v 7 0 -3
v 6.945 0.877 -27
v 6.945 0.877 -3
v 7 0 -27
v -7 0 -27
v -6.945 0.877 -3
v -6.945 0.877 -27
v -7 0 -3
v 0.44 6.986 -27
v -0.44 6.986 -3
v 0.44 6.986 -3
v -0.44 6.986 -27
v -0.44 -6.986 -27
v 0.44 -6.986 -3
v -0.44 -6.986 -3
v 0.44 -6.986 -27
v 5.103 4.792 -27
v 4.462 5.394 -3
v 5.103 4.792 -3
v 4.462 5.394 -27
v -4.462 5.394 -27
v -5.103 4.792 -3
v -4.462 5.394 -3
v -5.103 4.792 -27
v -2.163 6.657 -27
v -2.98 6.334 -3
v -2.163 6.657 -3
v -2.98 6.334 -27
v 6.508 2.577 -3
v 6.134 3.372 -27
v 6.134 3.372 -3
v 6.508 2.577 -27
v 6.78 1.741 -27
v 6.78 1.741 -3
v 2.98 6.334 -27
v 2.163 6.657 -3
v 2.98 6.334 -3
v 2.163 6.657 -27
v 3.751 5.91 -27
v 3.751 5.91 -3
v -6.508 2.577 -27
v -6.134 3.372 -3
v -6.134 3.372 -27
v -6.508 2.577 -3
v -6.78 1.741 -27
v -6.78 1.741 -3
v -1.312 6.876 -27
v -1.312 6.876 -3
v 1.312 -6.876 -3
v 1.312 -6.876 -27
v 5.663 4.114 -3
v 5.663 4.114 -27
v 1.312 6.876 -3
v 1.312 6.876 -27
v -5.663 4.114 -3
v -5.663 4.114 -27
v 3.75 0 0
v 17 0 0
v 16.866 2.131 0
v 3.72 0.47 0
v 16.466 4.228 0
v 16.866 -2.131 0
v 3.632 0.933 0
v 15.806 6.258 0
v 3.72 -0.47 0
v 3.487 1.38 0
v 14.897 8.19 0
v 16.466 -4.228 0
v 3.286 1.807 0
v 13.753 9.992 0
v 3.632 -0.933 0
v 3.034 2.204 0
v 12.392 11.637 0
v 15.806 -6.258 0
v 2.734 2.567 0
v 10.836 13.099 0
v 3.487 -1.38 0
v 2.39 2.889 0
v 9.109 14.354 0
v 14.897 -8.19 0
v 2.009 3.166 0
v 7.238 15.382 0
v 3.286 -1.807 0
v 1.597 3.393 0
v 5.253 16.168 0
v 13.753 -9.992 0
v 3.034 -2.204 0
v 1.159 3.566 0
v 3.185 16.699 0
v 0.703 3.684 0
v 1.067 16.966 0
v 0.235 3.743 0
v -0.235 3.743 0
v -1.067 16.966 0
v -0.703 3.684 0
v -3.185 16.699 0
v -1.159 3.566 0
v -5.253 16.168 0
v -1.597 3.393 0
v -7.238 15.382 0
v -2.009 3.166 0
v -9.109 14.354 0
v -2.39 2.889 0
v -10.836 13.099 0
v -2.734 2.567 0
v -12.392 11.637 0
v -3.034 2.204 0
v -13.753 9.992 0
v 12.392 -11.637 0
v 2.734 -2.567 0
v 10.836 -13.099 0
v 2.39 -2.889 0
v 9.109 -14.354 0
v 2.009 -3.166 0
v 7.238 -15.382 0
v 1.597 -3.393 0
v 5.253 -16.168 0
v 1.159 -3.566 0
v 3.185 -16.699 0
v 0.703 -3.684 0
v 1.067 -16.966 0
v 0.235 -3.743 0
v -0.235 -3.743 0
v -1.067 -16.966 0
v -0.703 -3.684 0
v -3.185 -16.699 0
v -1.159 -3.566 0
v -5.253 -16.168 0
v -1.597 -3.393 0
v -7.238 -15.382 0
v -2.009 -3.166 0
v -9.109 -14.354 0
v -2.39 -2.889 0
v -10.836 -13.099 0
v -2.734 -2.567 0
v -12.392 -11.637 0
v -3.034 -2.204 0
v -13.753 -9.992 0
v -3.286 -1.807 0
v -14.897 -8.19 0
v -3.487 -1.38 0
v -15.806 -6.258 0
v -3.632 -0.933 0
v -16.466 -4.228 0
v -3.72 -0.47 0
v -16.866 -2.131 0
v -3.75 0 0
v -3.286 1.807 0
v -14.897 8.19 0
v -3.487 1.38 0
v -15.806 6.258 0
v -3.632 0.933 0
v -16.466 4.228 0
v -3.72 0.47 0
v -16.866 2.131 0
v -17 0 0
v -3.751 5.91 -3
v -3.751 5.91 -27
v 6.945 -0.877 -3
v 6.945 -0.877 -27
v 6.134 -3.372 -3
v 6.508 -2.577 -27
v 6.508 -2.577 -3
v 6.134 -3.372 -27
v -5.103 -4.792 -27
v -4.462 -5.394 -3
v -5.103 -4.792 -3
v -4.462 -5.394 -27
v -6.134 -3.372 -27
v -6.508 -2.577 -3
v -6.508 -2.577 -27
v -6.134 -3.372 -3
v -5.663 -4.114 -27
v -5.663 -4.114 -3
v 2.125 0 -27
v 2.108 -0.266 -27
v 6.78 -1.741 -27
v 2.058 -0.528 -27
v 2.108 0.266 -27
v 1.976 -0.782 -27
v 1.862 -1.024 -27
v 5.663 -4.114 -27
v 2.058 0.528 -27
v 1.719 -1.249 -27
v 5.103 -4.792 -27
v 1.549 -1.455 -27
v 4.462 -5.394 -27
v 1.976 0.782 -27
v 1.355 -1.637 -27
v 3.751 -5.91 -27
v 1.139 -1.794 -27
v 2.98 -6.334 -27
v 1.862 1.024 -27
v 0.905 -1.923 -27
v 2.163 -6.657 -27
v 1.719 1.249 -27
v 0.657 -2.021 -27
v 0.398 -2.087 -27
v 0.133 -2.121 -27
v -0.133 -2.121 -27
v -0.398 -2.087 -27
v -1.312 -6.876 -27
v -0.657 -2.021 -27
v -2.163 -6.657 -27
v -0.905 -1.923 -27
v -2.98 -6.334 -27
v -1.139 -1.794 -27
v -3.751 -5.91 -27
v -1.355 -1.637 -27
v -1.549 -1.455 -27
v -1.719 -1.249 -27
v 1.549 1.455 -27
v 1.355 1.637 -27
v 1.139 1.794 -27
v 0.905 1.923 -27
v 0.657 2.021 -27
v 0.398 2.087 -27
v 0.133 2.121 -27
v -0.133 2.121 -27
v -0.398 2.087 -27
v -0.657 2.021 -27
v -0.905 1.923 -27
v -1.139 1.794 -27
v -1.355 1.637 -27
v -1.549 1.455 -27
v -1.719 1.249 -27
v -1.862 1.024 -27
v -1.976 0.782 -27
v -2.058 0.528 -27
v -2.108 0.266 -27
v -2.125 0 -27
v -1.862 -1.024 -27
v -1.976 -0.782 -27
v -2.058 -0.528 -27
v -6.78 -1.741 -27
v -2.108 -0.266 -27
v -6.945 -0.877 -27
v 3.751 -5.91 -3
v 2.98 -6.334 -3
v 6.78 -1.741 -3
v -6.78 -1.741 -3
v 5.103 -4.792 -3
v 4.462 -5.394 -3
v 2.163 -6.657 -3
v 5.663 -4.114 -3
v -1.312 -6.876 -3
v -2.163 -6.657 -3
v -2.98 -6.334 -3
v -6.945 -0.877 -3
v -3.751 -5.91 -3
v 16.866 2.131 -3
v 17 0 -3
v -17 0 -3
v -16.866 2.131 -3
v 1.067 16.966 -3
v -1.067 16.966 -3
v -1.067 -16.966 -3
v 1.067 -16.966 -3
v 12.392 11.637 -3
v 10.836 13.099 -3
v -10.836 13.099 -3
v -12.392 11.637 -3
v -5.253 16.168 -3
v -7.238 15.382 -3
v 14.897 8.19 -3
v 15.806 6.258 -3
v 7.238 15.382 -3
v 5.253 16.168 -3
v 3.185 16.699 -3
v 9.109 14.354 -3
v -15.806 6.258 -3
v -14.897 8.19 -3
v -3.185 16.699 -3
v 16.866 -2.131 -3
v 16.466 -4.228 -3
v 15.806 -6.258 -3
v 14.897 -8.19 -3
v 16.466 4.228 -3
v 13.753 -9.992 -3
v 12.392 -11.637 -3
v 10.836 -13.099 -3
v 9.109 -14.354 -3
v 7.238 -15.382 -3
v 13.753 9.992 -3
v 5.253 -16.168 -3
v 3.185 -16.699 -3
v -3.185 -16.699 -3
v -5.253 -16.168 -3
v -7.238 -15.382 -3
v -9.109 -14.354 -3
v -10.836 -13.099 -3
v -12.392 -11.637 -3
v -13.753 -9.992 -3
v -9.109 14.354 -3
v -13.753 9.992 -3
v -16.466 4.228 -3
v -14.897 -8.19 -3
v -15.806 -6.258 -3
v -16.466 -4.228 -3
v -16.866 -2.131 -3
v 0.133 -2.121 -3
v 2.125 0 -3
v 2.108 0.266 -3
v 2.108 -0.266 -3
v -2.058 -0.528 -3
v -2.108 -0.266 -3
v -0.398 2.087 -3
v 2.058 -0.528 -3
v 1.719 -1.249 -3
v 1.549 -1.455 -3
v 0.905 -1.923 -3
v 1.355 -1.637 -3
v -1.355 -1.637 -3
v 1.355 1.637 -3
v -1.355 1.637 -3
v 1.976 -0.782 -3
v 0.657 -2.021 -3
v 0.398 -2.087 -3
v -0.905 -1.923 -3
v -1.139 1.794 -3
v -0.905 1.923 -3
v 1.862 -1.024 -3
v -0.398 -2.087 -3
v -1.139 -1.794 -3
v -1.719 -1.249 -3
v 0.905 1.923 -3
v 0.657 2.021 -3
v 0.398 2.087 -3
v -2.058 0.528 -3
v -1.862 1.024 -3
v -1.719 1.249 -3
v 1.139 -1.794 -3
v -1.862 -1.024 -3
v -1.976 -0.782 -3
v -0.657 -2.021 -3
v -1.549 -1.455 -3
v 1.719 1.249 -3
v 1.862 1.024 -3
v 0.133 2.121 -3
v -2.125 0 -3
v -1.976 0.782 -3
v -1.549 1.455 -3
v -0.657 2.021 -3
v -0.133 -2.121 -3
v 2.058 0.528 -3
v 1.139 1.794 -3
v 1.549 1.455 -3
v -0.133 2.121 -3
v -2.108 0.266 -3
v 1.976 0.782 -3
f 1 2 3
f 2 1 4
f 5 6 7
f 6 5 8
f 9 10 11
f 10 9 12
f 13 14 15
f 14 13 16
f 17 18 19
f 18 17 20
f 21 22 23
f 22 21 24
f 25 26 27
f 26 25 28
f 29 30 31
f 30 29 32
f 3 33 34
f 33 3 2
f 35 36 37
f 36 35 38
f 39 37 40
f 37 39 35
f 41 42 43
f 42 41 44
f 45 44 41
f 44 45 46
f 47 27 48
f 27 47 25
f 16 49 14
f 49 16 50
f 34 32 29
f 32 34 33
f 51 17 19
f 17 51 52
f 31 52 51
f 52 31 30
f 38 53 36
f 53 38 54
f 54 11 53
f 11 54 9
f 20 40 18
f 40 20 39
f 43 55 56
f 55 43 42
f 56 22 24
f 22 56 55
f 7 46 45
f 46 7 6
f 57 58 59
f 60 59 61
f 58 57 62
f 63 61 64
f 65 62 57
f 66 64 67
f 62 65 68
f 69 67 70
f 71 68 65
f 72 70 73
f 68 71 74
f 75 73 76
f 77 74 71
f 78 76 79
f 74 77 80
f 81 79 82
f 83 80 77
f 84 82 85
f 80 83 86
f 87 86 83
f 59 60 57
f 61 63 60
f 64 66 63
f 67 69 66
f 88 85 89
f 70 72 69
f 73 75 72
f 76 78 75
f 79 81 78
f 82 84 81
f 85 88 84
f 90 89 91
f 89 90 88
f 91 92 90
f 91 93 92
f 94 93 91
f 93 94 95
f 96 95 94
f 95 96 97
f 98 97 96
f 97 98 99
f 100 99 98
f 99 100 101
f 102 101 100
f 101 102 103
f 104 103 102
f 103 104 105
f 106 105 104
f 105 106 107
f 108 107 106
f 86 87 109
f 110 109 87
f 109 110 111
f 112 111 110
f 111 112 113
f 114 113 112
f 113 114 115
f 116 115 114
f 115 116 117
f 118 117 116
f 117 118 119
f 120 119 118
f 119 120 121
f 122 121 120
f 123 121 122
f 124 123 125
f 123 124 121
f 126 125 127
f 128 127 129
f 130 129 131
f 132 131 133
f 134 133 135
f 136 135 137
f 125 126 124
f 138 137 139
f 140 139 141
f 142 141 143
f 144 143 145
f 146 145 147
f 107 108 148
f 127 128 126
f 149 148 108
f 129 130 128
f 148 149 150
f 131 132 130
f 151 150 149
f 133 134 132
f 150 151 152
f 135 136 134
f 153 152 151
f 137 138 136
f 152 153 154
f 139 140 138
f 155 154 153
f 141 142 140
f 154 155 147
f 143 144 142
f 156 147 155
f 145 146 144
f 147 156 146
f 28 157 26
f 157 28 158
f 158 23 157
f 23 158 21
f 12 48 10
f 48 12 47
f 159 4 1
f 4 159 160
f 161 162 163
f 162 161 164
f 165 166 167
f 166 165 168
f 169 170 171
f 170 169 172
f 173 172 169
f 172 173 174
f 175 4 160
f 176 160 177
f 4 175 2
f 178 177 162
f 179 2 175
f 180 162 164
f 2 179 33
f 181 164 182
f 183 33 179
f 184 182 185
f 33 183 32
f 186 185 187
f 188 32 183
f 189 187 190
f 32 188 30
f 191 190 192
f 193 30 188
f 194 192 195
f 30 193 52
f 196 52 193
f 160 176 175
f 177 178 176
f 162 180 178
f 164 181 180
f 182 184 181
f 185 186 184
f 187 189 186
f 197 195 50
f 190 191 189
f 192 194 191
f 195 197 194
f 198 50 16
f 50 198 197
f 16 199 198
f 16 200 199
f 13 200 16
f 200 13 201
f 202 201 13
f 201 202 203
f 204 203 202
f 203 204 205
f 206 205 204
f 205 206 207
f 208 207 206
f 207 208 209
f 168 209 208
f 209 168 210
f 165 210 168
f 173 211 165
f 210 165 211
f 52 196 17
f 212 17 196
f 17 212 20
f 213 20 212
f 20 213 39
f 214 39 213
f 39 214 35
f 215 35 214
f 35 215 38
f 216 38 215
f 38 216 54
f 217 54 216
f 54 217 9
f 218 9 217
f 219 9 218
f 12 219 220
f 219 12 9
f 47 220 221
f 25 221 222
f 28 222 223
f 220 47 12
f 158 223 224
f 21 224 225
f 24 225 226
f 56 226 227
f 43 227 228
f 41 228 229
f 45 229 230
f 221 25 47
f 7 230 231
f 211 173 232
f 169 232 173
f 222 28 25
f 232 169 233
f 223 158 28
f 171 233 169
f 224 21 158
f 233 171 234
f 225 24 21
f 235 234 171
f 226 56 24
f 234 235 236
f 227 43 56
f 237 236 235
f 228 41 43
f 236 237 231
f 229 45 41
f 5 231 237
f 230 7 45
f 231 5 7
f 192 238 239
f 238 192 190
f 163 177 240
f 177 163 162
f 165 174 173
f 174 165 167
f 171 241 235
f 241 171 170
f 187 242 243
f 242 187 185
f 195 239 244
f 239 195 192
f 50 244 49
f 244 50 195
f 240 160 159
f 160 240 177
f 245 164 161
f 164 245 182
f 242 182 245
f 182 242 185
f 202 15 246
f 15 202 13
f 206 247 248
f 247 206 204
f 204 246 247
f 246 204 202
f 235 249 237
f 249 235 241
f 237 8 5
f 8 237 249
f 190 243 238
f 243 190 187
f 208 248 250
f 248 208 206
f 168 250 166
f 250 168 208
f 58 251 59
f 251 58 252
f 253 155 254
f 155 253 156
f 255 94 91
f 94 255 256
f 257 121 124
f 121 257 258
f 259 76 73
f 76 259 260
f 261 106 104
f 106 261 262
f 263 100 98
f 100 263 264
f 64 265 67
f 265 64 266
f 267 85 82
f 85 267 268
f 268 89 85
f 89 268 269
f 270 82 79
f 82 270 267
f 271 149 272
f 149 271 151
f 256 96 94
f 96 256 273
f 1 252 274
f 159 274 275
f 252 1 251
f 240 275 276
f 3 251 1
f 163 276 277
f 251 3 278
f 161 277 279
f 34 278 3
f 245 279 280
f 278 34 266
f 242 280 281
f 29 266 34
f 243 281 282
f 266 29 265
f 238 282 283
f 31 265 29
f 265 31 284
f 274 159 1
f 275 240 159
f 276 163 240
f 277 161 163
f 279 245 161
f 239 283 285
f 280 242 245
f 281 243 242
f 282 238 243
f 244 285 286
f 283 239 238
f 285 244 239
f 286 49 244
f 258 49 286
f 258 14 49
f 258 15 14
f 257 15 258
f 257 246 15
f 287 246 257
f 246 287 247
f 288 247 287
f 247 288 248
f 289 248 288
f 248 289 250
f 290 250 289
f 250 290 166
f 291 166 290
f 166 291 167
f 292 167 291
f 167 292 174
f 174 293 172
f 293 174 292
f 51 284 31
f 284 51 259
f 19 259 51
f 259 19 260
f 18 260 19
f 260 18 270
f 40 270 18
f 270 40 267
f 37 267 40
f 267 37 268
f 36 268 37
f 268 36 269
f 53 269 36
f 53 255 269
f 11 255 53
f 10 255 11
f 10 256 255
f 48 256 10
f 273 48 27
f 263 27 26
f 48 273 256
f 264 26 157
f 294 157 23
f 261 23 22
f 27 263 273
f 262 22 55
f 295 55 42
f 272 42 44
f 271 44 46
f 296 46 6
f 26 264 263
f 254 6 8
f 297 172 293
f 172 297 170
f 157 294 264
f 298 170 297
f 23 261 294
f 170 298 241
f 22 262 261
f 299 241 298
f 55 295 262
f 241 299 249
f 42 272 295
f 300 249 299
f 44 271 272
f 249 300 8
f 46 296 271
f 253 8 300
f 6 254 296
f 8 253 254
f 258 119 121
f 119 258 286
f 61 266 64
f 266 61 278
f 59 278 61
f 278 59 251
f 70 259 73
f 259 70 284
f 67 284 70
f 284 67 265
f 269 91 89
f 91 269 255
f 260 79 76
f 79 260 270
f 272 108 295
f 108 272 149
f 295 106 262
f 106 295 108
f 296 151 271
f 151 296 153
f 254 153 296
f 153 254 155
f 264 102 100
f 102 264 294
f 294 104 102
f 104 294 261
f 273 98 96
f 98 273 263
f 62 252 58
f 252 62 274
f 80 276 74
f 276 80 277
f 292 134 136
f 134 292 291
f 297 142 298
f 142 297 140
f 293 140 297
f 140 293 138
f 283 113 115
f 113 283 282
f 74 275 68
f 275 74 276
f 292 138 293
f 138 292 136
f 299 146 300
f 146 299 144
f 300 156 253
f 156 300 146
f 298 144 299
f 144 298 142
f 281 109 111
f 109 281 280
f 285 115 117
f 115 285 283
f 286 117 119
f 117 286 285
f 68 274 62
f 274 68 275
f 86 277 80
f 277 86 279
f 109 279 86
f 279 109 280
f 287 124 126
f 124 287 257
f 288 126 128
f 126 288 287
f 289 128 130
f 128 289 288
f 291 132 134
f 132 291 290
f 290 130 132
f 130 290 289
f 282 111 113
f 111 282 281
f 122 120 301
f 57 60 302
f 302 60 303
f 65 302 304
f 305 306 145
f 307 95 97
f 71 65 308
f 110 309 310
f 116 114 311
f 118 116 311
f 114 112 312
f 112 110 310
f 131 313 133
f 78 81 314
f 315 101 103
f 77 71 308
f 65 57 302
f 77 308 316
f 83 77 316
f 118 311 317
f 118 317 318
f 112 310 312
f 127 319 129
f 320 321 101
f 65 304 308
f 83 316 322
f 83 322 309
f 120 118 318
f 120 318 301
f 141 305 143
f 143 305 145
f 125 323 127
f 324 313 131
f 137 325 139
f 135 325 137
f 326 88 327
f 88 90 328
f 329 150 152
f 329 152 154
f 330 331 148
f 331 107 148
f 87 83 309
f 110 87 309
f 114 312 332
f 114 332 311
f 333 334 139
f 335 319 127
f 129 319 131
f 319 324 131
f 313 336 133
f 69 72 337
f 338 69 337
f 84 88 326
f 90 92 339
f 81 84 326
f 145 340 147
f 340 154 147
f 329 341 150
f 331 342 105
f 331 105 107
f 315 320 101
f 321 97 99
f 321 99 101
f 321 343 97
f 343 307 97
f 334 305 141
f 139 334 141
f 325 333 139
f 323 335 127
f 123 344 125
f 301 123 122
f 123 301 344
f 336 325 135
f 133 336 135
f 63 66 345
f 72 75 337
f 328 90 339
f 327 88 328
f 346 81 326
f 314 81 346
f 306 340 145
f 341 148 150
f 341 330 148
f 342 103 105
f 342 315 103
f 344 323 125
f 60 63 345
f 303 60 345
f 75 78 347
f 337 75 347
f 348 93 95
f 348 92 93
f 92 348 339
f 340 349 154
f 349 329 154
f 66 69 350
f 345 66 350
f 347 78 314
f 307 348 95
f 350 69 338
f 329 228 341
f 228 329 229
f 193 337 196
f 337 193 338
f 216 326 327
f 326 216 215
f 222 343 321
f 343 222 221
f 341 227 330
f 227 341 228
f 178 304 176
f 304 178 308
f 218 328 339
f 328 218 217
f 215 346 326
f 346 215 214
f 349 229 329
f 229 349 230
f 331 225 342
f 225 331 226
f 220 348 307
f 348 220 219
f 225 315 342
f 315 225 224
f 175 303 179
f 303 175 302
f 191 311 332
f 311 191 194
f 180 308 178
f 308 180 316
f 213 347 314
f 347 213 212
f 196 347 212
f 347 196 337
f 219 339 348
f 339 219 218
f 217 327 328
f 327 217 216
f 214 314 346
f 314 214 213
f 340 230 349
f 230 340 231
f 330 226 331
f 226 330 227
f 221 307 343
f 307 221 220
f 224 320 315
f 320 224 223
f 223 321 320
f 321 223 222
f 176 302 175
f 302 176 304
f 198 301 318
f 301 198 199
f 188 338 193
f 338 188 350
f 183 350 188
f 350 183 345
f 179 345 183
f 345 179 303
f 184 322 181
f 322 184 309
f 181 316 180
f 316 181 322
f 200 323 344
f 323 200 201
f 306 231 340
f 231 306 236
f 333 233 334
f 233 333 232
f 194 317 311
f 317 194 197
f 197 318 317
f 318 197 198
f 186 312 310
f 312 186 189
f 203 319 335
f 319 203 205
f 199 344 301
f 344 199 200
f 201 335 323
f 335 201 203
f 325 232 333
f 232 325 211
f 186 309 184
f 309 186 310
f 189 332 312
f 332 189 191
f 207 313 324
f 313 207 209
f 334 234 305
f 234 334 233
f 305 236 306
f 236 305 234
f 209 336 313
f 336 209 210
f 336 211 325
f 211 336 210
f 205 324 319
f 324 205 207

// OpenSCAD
$fn = 50;


difference() {
	union() {
		translate(v = [0, 0, -27.0000000000]) {
			cylinder(h = 27, r = 7.0000000000);
		}
		translate(v = [0, 0, -3.0000000000]) {
			cylinder(h = 3, r = 17.0000000000);
		}
	}
	union() {
		translate(v = [0, 0, 0]) {
			rotate(a = [0, 0, 0]) {
				difference() {
					union() {
						#translate(v = [0, 0, -27.0000000000]) {
							cylinder(h = 27, r = 2.0000000000);
						}
						#translate(v = [0, 0, -3]) {
							cylinder(h = 3, r1 = 2.1250000000, r2 = 3.7500000000);
						}
						#translate(v = [0, 0, -27.0000000000]) {
							cylinder(h = 27, r = 2.1250000000);
						}
						#translate(v = [0, 0, -27.0000000000]) {
							cylinder(h = 27, r = 2.0000000000);
						}
					}
					union();
				}
			}
		}
	}
}
